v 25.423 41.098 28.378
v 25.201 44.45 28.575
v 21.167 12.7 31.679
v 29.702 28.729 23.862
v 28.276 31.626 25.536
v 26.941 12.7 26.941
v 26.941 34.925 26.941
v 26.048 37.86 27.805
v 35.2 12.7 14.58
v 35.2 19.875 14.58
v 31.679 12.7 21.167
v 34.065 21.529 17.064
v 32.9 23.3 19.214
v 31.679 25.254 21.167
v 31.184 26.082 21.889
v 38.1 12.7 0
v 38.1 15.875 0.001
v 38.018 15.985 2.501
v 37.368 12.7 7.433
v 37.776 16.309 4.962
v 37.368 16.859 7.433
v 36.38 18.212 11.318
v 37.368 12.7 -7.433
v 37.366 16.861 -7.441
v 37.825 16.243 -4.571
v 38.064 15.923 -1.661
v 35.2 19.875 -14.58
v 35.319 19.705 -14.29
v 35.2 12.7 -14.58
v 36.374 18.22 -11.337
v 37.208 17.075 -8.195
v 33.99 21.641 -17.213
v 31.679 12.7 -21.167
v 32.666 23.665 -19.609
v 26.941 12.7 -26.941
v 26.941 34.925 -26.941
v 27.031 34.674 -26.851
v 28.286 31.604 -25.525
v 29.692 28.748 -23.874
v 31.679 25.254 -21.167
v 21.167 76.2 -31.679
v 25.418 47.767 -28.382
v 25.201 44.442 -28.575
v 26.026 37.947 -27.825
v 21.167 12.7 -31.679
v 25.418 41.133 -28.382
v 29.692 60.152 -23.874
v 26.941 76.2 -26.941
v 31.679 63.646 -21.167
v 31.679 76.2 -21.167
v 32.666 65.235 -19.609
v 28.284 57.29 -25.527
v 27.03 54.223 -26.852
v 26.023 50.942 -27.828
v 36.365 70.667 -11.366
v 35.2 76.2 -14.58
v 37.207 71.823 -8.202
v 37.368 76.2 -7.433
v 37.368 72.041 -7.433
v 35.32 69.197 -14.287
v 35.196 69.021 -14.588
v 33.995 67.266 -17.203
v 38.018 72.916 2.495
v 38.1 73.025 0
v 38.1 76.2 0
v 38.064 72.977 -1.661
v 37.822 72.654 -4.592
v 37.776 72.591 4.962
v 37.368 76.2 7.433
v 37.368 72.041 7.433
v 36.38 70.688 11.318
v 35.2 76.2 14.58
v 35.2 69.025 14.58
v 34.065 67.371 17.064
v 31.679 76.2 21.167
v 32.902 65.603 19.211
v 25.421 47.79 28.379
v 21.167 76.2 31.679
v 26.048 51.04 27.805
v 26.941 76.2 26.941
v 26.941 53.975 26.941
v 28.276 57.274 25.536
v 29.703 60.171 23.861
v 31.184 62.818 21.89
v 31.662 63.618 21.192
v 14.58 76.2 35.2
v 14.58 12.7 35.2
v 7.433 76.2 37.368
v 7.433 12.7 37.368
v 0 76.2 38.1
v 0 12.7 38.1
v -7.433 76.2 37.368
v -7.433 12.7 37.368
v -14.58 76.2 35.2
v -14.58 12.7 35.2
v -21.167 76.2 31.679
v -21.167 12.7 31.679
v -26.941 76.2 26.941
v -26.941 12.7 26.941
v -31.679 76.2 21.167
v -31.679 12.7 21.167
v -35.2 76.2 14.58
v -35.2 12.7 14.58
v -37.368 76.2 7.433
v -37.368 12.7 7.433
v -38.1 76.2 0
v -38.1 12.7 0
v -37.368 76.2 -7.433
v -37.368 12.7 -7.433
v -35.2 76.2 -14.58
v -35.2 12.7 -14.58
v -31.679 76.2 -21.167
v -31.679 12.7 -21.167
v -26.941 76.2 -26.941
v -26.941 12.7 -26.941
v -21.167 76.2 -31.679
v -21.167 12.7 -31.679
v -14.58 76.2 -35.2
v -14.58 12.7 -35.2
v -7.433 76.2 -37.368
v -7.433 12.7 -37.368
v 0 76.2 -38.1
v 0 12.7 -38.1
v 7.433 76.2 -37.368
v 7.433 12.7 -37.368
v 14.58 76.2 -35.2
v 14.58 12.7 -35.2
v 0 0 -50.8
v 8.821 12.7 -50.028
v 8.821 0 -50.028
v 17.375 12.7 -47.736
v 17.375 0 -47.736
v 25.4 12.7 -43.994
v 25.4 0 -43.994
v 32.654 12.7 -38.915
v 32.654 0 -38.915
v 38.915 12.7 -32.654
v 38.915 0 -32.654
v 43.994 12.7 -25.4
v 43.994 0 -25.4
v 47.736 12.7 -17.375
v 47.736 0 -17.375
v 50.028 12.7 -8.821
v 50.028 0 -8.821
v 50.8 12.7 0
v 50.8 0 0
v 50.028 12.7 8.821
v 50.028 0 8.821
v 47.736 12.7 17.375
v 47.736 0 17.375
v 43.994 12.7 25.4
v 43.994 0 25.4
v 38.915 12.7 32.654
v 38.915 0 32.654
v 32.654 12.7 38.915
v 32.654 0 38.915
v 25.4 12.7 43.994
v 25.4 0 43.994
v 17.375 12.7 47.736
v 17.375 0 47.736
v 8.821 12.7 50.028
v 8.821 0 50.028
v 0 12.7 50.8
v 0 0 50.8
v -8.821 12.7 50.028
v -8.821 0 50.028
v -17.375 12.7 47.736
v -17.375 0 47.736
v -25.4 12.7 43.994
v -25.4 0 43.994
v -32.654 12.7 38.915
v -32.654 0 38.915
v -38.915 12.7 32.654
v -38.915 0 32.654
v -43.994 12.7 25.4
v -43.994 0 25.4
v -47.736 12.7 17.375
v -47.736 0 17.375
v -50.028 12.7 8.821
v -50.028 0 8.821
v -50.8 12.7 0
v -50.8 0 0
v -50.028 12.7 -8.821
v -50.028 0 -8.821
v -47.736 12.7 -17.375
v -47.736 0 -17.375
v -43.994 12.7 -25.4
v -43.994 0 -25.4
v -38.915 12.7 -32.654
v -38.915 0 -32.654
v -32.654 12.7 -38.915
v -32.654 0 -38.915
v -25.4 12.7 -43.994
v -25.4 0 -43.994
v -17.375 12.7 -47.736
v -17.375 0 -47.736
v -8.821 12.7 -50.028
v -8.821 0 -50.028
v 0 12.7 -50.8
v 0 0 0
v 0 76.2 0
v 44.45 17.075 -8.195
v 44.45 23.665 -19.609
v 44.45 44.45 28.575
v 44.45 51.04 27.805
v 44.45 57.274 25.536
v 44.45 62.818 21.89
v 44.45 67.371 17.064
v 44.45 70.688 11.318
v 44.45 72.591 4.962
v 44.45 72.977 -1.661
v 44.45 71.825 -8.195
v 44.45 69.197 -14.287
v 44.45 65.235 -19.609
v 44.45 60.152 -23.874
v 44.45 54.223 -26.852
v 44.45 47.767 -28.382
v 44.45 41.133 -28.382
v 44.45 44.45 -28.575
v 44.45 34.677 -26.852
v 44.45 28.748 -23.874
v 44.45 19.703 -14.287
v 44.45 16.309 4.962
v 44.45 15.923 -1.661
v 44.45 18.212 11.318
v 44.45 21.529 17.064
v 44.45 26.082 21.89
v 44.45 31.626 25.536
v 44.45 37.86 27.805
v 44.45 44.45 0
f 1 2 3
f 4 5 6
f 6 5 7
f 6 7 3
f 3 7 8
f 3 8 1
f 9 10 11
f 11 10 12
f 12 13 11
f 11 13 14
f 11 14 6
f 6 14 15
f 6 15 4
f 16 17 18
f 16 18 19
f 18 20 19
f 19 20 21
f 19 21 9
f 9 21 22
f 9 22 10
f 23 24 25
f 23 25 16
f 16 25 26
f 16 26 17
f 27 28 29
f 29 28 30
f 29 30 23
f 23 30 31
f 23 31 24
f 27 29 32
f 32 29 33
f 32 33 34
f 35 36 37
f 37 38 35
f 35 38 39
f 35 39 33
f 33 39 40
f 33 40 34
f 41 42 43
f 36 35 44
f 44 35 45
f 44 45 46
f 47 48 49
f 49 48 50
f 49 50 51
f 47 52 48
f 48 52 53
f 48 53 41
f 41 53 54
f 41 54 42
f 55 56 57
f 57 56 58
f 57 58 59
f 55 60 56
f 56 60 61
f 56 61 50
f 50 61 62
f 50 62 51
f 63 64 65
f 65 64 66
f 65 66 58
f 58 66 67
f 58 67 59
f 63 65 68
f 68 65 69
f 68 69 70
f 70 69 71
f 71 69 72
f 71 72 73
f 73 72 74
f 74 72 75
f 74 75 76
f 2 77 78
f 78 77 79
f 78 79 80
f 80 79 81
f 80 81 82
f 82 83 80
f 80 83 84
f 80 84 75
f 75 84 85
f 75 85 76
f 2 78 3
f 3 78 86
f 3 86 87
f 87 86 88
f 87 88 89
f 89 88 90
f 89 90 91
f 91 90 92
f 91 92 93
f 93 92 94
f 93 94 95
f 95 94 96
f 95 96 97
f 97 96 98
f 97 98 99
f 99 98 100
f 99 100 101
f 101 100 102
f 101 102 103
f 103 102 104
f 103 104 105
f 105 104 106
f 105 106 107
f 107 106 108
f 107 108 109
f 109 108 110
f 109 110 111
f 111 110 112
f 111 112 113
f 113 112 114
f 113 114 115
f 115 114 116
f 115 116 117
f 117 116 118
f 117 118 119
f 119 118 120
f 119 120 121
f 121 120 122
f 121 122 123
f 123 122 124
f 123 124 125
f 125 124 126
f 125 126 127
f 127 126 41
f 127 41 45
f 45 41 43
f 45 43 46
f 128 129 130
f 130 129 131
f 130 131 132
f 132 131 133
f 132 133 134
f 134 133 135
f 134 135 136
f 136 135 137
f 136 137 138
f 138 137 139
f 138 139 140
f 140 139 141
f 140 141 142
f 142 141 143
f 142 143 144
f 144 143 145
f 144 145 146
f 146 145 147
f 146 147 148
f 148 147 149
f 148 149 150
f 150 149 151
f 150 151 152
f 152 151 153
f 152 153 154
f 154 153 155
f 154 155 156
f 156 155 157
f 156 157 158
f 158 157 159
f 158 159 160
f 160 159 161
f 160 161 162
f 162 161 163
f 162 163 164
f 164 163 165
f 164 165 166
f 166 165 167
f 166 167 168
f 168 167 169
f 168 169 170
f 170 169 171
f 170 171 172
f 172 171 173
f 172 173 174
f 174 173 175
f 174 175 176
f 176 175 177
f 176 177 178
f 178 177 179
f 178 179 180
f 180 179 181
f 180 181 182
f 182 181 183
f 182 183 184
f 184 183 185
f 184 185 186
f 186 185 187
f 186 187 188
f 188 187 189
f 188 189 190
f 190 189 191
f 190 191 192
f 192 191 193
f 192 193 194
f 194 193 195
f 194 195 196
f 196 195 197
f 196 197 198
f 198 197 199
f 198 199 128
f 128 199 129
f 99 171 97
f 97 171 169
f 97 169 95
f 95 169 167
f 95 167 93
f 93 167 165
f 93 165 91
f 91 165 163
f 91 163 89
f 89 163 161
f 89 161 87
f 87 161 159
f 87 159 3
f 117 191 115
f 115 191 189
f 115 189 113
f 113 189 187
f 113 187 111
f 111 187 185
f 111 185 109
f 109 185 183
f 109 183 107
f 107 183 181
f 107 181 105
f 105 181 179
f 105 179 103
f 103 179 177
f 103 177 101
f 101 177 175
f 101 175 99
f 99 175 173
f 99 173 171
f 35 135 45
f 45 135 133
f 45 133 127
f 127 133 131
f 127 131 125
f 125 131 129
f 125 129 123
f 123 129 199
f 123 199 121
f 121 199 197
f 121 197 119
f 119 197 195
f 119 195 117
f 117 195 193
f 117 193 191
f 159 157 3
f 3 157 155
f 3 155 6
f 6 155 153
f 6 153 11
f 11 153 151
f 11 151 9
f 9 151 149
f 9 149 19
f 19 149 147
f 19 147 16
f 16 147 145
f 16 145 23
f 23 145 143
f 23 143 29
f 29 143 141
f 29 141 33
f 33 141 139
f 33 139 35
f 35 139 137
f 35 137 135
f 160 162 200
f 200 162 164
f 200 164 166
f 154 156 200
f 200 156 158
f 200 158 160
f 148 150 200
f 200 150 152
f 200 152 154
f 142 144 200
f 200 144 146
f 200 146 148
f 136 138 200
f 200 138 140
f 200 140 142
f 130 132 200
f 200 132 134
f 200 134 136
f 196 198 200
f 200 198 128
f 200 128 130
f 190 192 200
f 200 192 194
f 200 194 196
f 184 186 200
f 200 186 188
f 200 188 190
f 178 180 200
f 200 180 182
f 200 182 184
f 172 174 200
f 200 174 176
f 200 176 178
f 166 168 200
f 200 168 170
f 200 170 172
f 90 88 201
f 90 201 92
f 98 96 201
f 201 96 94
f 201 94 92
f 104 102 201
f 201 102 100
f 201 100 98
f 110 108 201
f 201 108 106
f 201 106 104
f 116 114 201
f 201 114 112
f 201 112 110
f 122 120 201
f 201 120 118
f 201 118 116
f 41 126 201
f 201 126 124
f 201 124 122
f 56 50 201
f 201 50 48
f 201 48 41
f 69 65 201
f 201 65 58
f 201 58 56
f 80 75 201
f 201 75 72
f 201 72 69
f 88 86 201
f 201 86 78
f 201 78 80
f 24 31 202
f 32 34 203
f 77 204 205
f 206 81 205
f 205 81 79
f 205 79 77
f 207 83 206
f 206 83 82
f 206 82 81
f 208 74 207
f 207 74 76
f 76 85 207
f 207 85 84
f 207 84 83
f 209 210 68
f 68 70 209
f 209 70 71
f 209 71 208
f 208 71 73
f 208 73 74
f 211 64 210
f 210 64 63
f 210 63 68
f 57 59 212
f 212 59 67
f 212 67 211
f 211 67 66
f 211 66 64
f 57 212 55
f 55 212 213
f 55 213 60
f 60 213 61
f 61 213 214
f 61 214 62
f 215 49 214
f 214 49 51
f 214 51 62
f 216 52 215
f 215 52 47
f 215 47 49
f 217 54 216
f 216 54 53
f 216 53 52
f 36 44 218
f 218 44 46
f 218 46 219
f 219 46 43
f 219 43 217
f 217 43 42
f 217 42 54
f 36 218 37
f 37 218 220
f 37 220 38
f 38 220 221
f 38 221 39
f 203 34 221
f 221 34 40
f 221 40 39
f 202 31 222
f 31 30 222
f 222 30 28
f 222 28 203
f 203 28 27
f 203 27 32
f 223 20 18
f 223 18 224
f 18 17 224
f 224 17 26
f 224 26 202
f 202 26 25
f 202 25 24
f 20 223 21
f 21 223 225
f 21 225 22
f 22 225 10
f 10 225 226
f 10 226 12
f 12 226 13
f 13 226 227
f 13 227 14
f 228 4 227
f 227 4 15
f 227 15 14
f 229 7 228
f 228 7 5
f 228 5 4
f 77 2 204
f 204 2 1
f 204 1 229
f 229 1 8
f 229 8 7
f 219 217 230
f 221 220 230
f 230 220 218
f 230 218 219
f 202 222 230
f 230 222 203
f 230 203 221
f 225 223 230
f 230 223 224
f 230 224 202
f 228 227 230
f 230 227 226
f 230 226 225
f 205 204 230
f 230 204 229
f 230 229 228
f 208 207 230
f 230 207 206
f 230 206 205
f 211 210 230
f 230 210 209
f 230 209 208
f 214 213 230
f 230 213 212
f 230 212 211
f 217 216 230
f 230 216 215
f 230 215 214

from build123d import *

# Parameters (mm, degrees)
SKETCH1_R           = 50.8
SKETCH1_R_2         = 38.1
BOSS_EXTRUDE1_DEPTH = 12.7
BOSS_EXTRUDE2_START = 12.7
SKETCH1_3_R         = 38.1
BOSS_EXTRUDE2_DEPTH = 63.5
SKETCH2_R           = 28.575
BOSS_EXTRUDE3_DEPTH = 44.45


with BuildPart() as part:
    # Sketch1 → Boss-Extrude1 (new body)
    with BuildSketch(Plane(origin=(0, 0, 0), x_dir=(1, 0, 0), z_dir=(0, 1, 0))):
        with Locations(Location((0, 0, 0), (0, 0, 270))):
            Circle(SKETCH1_R)
        Circle(SKETCH1_R_2, mode=Mode.SUBTRACT)
        Circle(SKETCH1_R_2)
    extrude(amount=BOSS_EXTRUDE1_DEPTH)

    # Sketch1<3> → Boss-Extrude2 (add)
    with BuildSketch(Plane(origin=(0, 0, 0), x_dir=(1, 0, 0), z_dir=(0, 1, 0)).offset(BOSS_EXTRUDE2_START)):
        with Locations(Location((0, 0, 0), (0, 0, 270))):
            Circle(SKETCH1_3_R)
    extrude(amount=BOSS_EXTRUDE2_DEPTH)

    # Sketch2 → Boss-Extrude3 (add)
    with BuildSketch(Plane(origin=(0, 0, 0), x_dir=(0, 0, -1), z_dir=(1, 0, 0))):
        with Locations(Location((0, 44.45, 0), (0, 0, 180))):
            Circle(SKETCH2_R)
    extrude(amount=BOSS_EXTRUDE3_DEPTH)


solid = part.part
